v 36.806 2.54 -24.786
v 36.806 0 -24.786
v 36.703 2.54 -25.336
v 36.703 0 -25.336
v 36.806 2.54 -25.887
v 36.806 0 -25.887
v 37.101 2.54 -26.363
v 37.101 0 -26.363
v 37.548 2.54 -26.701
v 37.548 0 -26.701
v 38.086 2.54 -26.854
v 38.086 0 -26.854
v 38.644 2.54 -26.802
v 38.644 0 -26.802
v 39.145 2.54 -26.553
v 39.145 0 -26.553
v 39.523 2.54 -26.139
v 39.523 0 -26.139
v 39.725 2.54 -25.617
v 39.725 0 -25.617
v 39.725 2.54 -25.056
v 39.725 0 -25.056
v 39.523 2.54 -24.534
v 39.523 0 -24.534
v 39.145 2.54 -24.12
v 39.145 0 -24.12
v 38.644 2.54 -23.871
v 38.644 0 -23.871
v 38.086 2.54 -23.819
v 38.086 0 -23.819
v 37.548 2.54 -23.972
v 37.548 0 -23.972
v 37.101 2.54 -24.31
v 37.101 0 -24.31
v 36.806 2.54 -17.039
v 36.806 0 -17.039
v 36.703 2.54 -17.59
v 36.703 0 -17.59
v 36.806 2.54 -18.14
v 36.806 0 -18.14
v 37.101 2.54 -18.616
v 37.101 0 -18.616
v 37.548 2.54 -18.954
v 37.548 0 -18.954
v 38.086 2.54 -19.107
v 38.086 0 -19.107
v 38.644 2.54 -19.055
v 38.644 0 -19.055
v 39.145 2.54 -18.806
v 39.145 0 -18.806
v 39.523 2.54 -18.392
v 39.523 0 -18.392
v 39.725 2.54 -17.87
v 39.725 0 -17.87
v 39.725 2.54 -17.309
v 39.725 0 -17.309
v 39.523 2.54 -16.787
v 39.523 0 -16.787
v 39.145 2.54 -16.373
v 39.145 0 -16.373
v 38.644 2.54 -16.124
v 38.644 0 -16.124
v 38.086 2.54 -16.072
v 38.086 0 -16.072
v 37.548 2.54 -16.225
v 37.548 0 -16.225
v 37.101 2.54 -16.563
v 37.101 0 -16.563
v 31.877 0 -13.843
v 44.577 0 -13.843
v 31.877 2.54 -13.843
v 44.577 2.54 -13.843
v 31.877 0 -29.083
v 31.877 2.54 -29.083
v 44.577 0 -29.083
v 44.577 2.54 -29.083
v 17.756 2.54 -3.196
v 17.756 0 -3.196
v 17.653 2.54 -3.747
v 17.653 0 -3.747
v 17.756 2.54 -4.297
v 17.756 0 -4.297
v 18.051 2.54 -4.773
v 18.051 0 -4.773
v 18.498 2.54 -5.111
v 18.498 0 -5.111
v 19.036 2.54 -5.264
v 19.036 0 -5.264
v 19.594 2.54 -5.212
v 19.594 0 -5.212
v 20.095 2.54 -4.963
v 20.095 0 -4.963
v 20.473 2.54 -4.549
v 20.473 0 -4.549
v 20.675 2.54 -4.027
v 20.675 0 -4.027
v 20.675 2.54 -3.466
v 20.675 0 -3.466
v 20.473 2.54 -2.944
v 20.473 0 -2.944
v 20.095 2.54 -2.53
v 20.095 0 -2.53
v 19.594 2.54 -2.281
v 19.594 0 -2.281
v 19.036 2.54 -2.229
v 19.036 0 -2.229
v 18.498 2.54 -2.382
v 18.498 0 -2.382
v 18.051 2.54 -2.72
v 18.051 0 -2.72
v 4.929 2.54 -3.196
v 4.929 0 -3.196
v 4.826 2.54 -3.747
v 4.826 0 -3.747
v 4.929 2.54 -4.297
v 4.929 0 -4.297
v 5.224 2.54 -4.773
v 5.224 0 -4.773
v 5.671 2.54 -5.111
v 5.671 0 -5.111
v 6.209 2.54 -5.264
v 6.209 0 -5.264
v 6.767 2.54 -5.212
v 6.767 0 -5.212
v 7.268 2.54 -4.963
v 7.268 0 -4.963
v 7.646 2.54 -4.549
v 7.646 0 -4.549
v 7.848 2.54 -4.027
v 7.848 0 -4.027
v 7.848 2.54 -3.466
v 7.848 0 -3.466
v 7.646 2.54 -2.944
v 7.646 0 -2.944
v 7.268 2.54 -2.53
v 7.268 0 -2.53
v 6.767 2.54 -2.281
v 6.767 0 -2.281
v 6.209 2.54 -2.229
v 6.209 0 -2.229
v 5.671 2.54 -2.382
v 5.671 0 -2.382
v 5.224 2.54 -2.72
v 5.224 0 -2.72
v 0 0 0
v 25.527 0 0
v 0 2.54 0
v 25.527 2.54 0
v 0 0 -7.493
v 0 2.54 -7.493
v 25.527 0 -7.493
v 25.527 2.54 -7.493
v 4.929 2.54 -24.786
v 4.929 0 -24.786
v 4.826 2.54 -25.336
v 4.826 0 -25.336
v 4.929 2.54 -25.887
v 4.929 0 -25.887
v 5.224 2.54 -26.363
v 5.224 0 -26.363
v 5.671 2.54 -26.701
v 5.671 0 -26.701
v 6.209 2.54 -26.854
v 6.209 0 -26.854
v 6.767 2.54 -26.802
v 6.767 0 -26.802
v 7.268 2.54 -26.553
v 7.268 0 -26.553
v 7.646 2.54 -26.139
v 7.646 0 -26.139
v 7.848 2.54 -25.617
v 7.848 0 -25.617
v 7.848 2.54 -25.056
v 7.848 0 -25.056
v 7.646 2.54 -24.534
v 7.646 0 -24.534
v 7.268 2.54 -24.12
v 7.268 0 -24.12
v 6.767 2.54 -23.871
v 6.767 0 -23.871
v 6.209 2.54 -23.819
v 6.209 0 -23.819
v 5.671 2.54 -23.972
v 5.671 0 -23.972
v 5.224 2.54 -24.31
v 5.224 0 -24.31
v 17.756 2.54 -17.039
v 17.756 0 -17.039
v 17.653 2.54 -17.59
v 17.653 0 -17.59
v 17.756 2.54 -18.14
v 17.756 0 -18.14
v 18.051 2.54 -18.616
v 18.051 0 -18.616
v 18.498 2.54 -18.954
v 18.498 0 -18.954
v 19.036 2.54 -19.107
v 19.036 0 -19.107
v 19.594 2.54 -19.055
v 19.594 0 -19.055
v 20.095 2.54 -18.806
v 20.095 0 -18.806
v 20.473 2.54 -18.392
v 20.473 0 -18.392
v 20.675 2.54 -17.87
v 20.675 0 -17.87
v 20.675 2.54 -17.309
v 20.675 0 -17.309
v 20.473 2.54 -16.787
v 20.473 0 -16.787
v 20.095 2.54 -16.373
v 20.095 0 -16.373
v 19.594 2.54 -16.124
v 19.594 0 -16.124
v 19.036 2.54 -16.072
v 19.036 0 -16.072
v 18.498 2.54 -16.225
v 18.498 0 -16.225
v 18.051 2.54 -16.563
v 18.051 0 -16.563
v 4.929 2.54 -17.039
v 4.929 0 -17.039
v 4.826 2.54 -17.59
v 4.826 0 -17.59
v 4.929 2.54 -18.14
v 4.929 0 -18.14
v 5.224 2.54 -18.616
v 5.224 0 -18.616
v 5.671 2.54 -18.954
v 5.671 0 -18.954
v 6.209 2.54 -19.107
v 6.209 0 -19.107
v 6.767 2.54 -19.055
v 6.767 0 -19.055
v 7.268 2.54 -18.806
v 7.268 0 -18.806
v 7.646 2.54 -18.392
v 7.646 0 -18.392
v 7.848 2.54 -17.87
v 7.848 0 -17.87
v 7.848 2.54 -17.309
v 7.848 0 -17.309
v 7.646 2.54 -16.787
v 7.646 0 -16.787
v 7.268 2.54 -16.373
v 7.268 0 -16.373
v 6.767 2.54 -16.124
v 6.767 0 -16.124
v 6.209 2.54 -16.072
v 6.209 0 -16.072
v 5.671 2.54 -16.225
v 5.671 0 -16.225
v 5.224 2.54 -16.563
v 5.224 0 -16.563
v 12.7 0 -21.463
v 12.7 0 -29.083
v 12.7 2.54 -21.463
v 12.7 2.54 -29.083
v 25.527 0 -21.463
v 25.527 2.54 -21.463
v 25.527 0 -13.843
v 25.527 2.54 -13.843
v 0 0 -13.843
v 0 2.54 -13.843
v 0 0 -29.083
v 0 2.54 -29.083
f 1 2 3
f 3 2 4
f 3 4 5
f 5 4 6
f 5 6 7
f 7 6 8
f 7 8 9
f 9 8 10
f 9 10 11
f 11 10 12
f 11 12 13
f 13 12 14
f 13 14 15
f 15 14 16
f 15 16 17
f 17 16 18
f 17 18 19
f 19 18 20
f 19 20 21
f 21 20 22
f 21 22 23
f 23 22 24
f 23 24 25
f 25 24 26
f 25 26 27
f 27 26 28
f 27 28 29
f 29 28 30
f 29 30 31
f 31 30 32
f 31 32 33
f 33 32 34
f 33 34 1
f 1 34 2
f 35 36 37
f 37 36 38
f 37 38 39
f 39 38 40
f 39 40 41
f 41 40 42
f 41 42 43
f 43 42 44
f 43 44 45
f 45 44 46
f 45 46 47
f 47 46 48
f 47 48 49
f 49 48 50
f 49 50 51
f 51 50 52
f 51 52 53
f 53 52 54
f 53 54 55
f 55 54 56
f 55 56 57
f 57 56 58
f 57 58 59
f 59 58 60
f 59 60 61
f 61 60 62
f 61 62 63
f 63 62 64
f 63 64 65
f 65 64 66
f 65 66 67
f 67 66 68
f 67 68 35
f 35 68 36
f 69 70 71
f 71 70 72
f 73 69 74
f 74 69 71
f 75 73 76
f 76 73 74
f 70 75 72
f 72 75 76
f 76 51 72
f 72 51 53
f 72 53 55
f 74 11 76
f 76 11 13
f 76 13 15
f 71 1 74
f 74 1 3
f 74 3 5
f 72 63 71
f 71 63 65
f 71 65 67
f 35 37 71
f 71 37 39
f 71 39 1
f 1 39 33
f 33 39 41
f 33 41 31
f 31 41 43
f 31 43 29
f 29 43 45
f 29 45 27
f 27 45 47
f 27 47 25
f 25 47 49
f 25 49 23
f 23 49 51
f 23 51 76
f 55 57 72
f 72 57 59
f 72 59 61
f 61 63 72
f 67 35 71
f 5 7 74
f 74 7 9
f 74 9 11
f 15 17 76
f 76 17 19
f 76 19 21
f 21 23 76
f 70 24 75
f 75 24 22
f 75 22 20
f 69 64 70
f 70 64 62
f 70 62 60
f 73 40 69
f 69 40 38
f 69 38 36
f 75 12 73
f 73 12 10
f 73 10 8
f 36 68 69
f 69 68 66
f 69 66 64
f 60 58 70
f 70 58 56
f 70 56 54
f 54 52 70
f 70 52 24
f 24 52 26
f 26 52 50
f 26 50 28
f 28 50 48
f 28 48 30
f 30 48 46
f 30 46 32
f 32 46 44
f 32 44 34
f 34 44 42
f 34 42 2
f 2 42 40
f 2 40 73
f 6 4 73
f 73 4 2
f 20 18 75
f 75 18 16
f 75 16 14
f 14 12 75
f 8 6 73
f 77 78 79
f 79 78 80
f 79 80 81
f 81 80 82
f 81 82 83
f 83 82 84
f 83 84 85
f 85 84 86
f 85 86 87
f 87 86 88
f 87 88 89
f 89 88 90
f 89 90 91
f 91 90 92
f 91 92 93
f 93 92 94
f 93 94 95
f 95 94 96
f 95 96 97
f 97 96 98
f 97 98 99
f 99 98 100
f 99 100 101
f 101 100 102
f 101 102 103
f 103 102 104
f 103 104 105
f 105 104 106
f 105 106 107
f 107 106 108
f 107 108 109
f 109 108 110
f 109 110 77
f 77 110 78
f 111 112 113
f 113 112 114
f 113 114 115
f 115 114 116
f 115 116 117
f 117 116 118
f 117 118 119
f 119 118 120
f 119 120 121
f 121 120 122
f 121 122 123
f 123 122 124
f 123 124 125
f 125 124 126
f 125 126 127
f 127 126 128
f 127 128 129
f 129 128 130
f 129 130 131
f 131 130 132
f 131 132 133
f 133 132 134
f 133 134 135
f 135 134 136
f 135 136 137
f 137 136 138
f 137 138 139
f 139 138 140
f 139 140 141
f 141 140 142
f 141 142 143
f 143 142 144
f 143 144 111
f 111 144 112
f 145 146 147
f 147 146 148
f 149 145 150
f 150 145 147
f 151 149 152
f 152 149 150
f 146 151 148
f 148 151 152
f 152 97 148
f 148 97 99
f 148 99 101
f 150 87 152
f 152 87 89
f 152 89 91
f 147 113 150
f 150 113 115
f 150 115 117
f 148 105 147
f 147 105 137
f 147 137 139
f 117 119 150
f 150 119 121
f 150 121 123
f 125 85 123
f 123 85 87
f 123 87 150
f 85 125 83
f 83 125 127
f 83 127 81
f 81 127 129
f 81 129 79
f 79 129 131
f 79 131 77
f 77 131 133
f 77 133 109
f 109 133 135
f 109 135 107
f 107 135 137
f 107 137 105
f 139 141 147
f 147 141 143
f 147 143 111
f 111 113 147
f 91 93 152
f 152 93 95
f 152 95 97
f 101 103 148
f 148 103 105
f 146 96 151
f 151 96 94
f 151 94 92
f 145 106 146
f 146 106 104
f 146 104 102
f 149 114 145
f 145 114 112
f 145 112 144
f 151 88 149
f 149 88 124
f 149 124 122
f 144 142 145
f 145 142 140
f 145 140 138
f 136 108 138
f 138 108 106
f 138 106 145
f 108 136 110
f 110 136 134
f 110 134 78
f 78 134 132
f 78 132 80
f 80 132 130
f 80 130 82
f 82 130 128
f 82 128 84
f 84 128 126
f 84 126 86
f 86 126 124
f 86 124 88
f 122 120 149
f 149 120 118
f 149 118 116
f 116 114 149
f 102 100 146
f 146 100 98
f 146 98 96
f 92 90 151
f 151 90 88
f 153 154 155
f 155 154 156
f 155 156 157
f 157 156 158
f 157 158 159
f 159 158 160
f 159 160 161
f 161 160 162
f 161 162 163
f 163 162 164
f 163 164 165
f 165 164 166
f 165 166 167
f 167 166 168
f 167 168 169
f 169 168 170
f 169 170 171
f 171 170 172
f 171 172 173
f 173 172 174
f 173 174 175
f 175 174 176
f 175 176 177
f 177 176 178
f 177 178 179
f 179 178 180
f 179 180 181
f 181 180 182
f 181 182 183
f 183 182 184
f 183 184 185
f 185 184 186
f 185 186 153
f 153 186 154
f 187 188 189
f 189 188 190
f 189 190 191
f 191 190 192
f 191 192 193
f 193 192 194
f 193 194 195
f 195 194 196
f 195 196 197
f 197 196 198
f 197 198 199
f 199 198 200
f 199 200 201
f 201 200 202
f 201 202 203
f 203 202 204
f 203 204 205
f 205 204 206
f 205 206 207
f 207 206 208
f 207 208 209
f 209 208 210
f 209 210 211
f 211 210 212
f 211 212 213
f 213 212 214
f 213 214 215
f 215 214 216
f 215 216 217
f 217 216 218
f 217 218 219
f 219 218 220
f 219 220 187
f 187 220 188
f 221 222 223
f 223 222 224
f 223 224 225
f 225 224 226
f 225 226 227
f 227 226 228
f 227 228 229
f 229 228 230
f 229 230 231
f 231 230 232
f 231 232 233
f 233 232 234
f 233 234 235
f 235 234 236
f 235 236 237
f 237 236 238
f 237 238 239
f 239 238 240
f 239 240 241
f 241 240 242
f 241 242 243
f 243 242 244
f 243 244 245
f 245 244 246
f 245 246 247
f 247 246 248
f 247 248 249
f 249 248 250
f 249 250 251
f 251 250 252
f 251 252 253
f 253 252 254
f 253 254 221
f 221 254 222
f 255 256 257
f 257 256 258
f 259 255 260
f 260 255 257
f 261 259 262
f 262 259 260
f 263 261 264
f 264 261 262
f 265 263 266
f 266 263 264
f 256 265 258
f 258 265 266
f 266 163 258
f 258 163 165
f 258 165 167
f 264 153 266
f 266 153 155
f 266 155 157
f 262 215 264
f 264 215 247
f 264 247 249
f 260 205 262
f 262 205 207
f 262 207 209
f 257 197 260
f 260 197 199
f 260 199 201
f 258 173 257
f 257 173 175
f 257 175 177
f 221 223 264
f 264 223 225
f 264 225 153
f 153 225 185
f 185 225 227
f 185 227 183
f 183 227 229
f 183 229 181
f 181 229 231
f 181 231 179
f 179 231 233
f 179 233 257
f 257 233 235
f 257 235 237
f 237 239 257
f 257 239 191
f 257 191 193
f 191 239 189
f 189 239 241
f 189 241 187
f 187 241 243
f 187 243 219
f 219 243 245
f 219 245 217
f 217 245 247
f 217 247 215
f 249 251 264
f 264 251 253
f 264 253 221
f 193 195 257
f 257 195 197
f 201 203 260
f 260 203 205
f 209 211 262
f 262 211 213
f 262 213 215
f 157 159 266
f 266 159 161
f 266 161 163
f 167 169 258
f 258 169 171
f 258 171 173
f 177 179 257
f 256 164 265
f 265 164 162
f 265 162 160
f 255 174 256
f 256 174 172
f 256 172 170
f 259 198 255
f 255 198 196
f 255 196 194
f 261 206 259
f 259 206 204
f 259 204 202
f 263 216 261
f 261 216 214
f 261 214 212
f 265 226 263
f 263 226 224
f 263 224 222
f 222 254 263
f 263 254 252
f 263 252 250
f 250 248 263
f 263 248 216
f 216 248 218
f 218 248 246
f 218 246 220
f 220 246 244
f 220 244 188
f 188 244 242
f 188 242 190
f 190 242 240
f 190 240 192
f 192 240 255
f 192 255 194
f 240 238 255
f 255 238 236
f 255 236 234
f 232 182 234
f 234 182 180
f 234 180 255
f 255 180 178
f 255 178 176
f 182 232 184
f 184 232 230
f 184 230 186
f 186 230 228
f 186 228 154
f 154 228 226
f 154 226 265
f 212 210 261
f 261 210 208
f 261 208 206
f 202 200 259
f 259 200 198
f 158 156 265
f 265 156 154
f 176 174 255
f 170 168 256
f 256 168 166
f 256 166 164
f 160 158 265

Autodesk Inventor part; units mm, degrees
ref_plane "YZ Plane" through (0, 0, 0) normal (1, 0, 0) x (0, 1, 0)
ref_plane "XZ Plane" through (0, 0, 0) normal (0, 1, 0) x (-1, 0, 0)
ref_plane "XY Plane" through (0, 0, 0) normal (0, 0, 1) x (1, 0, 0)
sketch "Sketch1" plane through (0, 0, 0) normal (0, 1, 0) x (-1, 0, 0)
  line L0 (0, 0) -> (-25.527, 0)
  line L1 (-25.527, 0) -> (-25.527, -7.493)
  line L2 (-25.527, -7.493) -> (0, -7.493)
  line L3 (0, -7.493) -> (0, 0)
  circle A0 centre (-6.35, -3.7465) radius 1.524
  circle A1 centre (-19.177, -3.7465) radius 1.524
  line L4 (-12.7, -21.463) -> (-25.527, -21.463)
  line L5 (-25.527, -21.463) -> (-25.527, -13.843)
  line L6 (-25.527, -13.843) -> (0, -13.843)
  line L7 (0, -13.843) -> (0, -21.463)
  line L8 (0, -29.083) -> (-12.7, -29.083)
  line L9 (-12.7, -29.083) -> (-12.7, -21.463)
  line L10 (0, -21.463) -> (0, -29.083)
  circle A2 centre (-6.35, -17.5895) radius 1.524
  circle A3 centre (-19.177, -17.5895) radius 1.524
  circle A4 centre (-6.35, -25.3365) radius 1.524
  line L11 (-31.877, -13.843) -> (-44.577, -13.843)
  line L12 (-44.577, -13.843) -> (-44.577, -29.083)
  line L13 (-44.577, -29.083) -> (-31.877, -29.083)
  line L14 (-31.877, -29.083) -> (-31.877, -13.843)
  circle A5 centre (-38.227, -17.5895) radius 1.524
  circle A6 centre (-38.227, -25.3365) radius 1.524
  point P0 (-25.527, -17.653)
  dimension "d1" = 7.493
  dimension "d2" = 25.527
  dimension "d3" = 3.048
  dimension "d4" = 3.7465
  dimension "d5" = 6.35
  dimension "d6" = 6.35
  dimension "d8" = 3.048
  dimension "d9" = 6.35
  dimension "d10" = 7.62
  dimension "d11" = 7.62
  dimension "d12" = 12.7
  dimension "d13" = 3.048
  dimension "d14" = 6.35
  dimension "d15" = 3.7465
  dimension "d16" = 3.048
  dimension "d17" = 6.35
  dimension "d18" = 3.048
  dimension "d19" = 3.7465
  dimension "d20" = 12.7
  dimension "d21" = 6.35
  dimension "d22" = 3.048
  dimension "d23" = 6.35
  dimension "d24" = 3.7465
  dimension "d25" = 3.048
  dimension "d26" = 3.7465
extrude "Extrusion1" add sketch "Sketch1" along normal blind 2.54
properties part number "LatchBankGussetSet"
